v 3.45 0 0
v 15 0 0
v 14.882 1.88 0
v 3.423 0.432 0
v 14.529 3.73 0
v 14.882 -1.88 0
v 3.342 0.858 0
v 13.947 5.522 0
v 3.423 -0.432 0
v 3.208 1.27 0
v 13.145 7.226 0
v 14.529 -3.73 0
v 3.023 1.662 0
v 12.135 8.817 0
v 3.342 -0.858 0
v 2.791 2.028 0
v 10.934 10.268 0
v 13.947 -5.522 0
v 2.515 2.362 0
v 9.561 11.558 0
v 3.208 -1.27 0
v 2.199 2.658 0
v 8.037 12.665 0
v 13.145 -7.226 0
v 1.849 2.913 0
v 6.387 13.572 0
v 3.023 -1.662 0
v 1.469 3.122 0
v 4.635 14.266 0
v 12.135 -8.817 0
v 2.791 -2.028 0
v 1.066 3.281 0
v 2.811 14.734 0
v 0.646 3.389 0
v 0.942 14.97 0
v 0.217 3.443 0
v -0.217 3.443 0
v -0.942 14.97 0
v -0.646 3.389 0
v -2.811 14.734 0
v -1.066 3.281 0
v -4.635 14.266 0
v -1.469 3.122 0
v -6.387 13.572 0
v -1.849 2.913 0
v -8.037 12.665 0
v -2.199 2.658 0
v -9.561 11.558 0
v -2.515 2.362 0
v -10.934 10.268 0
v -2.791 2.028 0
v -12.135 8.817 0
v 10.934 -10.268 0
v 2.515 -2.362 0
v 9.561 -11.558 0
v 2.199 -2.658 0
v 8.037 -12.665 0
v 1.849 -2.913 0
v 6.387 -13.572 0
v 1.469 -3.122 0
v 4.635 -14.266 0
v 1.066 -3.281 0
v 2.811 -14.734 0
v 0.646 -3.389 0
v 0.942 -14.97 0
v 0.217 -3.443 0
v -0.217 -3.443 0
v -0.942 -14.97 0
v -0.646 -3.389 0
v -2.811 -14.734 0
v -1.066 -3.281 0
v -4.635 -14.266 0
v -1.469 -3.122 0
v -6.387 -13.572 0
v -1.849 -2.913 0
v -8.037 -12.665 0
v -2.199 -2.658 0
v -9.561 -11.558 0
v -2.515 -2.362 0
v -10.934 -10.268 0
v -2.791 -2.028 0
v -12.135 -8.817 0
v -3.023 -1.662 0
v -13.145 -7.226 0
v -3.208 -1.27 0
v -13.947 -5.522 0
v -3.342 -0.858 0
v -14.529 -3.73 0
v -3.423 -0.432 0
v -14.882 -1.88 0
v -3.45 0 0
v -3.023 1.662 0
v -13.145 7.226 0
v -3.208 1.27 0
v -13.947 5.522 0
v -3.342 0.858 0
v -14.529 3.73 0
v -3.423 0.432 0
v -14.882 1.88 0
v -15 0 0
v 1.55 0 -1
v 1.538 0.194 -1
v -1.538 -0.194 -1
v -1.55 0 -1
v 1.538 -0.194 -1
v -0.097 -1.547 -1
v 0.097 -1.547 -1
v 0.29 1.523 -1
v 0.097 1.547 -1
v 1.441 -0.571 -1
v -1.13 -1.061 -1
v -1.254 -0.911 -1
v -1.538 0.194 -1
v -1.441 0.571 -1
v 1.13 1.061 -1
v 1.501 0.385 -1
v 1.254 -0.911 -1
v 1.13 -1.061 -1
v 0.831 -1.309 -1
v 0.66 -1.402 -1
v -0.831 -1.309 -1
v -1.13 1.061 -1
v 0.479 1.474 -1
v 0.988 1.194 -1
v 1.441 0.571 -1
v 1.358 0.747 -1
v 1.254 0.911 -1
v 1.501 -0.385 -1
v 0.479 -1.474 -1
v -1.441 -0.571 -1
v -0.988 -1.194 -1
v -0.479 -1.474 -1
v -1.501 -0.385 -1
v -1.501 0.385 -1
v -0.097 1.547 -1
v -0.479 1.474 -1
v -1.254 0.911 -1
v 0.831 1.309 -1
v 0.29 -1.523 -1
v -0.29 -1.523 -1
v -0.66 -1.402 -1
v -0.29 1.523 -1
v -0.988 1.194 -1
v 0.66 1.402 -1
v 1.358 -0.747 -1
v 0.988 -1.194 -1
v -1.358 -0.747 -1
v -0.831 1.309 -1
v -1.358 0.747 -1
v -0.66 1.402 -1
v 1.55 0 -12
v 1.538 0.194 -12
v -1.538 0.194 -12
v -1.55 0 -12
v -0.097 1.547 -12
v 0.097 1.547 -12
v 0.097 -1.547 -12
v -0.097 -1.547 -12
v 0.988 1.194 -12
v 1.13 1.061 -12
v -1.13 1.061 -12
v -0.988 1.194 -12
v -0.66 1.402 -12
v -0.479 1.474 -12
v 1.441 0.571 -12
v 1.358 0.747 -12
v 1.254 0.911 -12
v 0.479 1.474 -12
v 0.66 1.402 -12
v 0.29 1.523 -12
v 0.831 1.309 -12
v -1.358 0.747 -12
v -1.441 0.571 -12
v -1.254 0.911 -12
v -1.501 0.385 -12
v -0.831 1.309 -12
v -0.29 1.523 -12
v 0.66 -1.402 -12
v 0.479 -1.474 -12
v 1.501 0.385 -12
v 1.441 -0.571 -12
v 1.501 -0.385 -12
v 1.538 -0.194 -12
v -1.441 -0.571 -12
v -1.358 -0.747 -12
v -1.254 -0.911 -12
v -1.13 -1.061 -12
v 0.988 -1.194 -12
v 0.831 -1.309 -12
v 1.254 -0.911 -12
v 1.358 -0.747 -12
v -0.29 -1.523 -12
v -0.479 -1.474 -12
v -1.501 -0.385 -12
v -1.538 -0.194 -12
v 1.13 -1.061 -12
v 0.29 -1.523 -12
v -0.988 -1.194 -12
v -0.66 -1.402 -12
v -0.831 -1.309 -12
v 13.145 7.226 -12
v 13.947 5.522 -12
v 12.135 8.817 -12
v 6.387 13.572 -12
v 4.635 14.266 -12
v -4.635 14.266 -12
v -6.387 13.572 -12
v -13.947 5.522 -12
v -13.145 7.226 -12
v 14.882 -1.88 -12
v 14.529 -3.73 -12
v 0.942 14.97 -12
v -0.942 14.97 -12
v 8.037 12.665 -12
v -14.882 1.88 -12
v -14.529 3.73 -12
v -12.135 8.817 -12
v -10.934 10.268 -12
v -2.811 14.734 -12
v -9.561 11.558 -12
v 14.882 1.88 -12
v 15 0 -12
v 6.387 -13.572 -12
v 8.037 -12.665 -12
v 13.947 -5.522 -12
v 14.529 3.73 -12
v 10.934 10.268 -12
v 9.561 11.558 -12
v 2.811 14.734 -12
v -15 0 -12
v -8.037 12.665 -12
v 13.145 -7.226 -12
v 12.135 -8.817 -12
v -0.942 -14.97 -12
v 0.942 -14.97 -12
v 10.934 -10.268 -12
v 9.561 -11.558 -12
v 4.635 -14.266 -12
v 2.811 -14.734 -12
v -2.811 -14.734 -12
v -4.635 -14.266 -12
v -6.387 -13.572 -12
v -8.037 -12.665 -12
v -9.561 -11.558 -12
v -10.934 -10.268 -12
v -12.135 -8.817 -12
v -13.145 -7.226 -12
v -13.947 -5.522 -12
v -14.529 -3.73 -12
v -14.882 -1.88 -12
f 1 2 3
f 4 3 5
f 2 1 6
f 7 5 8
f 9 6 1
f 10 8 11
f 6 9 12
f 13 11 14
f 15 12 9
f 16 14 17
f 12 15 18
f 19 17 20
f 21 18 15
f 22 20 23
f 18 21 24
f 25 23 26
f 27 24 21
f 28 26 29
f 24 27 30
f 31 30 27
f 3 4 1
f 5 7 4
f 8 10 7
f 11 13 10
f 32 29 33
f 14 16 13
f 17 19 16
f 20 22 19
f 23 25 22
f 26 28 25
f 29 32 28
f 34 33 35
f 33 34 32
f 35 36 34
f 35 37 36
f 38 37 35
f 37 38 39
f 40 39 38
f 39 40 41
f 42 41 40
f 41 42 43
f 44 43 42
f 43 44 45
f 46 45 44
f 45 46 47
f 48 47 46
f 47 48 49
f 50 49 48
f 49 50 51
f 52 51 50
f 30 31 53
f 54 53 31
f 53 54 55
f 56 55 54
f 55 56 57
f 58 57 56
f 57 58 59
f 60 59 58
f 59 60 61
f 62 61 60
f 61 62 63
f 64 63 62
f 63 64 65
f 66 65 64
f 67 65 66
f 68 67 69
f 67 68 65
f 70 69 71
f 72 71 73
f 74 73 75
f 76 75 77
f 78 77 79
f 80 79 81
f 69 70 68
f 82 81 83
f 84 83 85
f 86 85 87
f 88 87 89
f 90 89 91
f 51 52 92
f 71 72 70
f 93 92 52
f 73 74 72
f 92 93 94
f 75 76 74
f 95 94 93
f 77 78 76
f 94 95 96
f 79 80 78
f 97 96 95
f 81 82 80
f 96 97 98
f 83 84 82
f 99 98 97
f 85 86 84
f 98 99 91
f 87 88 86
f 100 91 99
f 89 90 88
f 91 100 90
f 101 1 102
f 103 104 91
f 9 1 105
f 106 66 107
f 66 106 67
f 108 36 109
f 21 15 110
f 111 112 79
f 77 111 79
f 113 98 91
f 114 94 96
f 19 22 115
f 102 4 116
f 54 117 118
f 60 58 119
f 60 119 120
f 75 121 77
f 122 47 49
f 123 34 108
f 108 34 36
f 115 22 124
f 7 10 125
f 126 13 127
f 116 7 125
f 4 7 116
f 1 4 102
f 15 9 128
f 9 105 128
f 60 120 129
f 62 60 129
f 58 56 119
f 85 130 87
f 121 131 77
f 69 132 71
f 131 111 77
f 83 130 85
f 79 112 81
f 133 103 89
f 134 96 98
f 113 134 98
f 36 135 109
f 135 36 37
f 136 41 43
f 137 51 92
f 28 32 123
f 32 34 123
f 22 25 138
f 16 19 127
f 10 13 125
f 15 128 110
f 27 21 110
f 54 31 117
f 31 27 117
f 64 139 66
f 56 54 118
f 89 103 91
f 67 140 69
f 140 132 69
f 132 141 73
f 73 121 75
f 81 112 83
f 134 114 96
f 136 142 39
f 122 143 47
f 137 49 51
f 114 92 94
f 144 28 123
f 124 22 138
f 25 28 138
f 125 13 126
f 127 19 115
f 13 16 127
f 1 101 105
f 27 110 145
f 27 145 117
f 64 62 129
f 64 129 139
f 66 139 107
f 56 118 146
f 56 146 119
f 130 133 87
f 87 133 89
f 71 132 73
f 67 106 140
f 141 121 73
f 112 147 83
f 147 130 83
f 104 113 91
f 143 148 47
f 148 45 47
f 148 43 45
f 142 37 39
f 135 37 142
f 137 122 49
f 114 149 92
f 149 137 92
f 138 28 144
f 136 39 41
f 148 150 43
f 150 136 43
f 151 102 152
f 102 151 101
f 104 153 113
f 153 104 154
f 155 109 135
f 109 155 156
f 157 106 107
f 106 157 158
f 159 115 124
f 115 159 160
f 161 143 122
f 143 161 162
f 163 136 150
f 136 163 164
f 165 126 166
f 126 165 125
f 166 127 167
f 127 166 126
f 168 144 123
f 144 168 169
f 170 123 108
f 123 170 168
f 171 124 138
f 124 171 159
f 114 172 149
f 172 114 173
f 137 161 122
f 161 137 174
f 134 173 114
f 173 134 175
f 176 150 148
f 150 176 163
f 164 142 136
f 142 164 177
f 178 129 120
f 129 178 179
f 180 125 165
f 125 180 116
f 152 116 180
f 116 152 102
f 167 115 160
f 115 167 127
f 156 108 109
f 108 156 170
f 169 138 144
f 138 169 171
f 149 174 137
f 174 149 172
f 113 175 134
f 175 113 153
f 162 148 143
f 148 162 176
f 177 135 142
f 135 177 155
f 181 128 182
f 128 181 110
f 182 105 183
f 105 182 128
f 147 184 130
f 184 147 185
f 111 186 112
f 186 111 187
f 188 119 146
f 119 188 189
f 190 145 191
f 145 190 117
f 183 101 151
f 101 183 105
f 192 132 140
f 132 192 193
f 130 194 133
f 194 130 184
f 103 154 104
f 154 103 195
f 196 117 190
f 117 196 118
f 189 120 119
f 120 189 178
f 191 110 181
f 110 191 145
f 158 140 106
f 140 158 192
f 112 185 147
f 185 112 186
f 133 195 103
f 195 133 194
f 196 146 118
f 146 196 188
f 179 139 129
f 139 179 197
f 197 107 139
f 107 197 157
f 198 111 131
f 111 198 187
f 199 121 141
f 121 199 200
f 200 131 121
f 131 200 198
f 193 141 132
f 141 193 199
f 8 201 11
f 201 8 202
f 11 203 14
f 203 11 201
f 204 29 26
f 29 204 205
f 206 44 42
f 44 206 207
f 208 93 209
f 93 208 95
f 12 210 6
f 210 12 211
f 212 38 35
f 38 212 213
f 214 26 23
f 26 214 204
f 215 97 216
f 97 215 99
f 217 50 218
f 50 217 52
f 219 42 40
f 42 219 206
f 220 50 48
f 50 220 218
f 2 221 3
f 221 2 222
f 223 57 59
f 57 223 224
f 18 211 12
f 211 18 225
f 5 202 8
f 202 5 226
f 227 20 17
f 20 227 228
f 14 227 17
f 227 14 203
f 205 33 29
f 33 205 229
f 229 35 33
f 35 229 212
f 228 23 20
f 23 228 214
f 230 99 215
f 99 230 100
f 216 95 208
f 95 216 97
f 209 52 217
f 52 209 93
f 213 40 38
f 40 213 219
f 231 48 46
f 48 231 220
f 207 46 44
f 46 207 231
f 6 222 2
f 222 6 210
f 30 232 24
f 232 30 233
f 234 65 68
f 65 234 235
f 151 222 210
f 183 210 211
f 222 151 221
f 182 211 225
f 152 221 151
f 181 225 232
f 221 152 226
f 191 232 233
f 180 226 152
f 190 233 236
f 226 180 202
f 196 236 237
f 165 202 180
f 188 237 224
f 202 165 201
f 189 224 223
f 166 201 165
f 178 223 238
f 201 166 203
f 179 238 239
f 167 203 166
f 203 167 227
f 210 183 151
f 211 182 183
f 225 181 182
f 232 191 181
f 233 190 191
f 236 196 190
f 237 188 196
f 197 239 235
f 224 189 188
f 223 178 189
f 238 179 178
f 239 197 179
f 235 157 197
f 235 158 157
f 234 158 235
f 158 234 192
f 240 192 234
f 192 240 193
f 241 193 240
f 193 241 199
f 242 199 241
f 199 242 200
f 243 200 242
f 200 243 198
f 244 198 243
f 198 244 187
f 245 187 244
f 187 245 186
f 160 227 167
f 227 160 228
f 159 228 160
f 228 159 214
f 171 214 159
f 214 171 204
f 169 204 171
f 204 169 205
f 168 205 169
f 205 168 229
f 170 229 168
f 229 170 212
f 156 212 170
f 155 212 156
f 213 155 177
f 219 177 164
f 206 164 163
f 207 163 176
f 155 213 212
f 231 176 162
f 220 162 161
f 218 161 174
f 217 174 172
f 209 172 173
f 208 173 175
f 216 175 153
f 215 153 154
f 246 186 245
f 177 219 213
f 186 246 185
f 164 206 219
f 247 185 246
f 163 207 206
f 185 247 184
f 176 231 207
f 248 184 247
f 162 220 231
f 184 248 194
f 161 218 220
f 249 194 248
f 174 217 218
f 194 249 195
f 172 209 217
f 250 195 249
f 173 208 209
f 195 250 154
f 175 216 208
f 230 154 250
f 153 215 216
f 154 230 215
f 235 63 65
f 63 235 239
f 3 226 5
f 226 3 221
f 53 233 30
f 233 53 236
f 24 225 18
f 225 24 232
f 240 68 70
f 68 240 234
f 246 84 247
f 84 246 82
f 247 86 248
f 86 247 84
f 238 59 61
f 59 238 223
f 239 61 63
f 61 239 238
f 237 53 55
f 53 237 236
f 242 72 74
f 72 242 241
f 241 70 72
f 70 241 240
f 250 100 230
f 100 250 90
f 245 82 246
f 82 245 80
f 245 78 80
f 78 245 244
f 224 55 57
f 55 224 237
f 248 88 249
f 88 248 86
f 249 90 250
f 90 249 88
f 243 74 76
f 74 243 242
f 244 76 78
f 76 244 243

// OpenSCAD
$fn = 50;

difference() {
	union() {
		translate(v = [0, 0, -12.0]) {
			cylinder(h = 12, r = 15.0);
		}
	}
	union() {
		translate(v = [0, 0, 0]) {
			rotate(a = [0, 0, 0]) {
				difference() {
					union() {
						translate(v = [0, 0, -15.0]) {
							cylinder(h = 15, r = 1.25);
						}
						translate(v = [0, 0, -1.0]) {
							cylinder(h = 1.0, r1 = 1.55, r2 = 3.45);
						}
						translate(v = [0, 0, -15.0]) {
							cylinder(h = 15, r = 1.55);
						}
						translate(v = [0, 0, -15.0]) {
							cylinder(h = 15, r = 1.25);
						}
					}
					union();
				}
			}
		}
	}
}
